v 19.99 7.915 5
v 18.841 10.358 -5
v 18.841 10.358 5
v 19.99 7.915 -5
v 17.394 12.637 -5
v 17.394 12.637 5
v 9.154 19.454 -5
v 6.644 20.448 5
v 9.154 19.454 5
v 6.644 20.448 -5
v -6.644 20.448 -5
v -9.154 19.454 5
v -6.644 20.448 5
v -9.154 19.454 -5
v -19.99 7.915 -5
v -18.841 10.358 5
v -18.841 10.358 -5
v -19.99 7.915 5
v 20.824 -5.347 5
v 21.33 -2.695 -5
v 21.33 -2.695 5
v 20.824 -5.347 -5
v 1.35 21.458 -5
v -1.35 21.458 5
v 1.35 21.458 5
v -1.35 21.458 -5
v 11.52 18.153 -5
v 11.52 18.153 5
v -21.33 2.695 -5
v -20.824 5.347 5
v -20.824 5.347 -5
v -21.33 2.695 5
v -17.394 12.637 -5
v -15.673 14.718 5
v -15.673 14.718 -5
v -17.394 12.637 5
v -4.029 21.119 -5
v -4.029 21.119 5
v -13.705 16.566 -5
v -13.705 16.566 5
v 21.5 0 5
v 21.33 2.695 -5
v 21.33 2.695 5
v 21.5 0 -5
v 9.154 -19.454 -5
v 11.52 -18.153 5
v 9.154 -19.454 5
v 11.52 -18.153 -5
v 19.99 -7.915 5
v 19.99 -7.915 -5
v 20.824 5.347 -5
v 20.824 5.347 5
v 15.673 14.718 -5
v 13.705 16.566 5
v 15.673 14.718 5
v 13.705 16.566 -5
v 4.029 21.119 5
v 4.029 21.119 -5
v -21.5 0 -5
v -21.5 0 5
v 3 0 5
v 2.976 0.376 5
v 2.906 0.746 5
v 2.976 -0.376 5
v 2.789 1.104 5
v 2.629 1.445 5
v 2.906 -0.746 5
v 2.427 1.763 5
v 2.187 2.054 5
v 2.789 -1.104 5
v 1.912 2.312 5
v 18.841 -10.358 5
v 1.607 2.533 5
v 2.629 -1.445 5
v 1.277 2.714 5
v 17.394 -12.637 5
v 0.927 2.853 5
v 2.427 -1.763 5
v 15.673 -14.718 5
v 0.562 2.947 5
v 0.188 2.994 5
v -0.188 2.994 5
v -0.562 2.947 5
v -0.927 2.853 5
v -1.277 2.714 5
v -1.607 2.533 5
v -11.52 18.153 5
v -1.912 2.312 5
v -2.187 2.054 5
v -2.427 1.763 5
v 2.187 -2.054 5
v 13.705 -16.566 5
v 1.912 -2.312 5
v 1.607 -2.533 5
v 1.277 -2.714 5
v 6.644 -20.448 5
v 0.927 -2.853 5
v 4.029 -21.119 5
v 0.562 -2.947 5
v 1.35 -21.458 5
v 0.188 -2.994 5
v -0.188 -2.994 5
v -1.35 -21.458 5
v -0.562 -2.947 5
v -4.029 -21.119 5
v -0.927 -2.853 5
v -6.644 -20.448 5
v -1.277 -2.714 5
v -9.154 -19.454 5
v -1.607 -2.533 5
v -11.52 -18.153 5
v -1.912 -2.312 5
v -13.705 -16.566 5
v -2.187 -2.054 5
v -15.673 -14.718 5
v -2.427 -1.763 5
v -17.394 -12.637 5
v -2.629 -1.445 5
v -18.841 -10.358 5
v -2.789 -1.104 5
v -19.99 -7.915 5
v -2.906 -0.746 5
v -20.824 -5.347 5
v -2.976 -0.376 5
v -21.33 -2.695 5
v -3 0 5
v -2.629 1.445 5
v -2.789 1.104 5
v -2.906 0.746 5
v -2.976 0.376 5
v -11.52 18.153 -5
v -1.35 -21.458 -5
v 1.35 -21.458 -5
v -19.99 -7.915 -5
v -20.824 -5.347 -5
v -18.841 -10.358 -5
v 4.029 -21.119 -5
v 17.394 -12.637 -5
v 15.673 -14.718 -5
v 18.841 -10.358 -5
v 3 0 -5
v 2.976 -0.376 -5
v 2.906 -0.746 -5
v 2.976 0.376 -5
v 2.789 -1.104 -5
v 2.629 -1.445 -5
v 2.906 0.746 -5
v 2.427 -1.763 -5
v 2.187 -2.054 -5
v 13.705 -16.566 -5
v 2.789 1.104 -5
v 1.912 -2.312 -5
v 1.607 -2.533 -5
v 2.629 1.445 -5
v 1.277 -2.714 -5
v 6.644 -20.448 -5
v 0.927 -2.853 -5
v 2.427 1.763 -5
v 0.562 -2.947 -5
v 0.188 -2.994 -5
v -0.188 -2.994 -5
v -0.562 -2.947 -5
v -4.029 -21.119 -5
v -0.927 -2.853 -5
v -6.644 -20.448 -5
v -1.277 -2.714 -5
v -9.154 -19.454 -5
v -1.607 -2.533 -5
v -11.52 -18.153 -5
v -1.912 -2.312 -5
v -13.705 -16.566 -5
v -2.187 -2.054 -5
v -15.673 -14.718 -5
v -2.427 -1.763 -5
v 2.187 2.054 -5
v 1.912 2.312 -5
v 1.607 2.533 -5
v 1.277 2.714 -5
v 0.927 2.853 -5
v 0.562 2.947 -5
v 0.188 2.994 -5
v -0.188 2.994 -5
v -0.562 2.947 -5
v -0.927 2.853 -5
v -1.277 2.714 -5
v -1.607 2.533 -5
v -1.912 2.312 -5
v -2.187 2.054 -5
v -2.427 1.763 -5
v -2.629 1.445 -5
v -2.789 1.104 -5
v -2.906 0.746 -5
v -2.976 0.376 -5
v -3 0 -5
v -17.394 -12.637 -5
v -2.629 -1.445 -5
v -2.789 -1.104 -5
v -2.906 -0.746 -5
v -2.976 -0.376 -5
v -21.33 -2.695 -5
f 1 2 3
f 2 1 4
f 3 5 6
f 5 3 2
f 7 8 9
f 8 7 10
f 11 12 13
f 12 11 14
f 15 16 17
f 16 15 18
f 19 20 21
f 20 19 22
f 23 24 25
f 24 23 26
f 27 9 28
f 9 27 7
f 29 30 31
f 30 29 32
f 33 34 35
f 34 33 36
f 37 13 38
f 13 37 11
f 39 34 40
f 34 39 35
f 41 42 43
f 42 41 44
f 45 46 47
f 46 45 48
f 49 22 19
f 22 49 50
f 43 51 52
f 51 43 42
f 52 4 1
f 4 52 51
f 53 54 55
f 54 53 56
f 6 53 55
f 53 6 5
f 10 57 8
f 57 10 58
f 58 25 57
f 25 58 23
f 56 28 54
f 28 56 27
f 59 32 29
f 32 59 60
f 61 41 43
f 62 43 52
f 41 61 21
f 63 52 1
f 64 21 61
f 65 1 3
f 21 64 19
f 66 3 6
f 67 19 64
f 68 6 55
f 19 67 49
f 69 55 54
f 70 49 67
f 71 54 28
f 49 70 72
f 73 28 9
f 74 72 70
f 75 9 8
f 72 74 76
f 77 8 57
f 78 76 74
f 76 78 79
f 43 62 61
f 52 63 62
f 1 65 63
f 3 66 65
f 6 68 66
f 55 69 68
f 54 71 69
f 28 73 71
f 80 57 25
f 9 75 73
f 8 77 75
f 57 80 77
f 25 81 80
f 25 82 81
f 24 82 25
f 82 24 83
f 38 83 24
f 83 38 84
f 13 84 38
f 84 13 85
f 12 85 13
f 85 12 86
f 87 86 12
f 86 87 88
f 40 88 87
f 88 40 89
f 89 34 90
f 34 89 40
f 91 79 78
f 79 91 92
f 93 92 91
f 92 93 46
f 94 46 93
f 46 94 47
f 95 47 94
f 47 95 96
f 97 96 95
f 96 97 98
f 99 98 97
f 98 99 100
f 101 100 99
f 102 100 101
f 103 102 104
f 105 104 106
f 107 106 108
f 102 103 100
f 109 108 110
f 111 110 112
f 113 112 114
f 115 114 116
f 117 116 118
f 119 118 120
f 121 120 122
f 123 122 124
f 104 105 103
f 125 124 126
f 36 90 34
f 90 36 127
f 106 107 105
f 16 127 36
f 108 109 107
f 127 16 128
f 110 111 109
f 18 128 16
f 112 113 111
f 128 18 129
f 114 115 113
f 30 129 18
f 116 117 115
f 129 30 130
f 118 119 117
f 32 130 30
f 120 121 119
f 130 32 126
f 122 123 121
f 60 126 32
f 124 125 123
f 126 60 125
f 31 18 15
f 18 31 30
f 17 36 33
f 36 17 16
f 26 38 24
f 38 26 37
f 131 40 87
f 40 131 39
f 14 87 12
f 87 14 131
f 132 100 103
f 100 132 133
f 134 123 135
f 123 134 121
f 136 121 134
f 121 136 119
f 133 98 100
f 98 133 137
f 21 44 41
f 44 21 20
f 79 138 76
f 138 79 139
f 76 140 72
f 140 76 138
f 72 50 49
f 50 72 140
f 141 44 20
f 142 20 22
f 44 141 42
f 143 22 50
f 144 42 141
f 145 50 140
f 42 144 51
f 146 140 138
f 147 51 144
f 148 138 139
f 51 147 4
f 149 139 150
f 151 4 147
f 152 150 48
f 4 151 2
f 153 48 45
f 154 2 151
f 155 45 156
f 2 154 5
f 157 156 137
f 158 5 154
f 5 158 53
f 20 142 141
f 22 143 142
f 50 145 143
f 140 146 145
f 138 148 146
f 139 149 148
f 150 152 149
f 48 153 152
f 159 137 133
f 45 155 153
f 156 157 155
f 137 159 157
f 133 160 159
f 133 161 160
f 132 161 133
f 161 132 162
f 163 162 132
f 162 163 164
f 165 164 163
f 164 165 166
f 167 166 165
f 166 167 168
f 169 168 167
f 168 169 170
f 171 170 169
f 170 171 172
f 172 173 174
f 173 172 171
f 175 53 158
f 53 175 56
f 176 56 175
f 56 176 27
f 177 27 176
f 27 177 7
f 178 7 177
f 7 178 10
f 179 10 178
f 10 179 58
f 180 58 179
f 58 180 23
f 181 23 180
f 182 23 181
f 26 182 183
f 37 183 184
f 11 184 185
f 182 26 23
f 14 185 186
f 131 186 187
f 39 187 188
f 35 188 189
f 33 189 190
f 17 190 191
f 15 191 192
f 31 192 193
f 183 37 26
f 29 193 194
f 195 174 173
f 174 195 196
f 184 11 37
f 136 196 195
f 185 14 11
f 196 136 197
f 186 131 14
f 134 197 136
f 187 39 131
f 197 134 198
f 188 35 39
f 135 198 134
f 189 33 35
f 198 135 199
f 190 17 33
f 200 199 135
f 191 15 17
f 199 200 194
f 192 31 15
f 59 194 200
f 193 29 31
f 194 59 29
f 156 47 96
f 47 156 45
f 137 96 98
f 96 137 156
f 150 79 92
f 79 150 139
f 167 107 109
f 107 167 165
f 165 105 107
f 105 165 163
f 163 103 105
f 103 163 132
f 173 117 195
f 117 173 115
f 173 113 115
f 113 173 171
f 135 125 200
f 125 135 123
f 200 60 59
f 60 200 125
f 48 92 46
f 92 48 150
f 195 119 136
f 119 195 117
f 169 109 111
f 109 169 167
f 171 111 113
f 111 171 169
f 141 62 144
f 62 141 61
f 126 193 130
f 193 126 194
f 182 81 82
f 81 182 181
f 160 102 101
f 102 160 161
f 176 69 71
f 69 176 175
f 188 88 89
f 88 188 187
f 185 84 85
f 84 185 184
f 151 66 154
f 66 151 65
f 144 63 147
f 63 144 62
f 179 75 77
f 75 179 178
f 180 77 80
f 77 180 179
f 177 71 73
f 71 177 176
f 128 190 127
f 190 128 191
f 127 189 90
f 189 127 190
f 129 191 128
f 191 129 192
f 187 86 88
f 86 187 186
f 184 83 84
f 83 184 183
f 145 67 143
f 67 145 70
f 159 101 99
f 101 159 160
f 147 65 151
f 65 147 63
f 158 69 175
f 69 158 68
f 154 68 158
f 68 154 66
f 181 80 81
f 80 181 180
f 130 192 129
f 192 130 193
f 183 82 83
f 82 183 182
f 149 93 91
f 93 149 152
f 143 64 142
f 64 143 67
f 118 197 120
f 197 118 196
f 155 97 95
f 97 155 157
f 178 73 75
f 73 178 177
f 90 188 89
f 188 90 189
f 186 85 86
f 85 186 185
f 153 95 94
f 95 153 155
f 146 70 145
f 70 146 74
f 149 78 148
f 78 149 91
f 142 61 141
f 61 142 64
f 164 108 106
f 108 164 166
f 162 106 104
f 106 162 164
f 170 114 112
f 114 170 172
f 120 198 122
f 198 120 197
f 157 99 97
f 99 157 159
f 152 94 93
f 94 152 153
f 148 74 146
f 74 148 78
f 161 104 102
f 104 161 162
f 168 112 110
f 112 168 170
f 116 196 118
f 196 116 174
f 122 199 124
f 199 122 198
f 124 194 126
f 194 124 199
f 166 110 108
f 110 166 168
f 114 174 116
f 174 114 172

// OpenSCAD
$fn = 50;


difference() {
	union() {
		translate(v = [0, 0, -5.0000000000]) {
			cylinder(h = 10, r = 21.5000000000);
		}
	}
	union() {
		translate(v = [0, 0, -100.0000000000]) {
			cylinder(h = 200, r = 3);
		}
	}
}
